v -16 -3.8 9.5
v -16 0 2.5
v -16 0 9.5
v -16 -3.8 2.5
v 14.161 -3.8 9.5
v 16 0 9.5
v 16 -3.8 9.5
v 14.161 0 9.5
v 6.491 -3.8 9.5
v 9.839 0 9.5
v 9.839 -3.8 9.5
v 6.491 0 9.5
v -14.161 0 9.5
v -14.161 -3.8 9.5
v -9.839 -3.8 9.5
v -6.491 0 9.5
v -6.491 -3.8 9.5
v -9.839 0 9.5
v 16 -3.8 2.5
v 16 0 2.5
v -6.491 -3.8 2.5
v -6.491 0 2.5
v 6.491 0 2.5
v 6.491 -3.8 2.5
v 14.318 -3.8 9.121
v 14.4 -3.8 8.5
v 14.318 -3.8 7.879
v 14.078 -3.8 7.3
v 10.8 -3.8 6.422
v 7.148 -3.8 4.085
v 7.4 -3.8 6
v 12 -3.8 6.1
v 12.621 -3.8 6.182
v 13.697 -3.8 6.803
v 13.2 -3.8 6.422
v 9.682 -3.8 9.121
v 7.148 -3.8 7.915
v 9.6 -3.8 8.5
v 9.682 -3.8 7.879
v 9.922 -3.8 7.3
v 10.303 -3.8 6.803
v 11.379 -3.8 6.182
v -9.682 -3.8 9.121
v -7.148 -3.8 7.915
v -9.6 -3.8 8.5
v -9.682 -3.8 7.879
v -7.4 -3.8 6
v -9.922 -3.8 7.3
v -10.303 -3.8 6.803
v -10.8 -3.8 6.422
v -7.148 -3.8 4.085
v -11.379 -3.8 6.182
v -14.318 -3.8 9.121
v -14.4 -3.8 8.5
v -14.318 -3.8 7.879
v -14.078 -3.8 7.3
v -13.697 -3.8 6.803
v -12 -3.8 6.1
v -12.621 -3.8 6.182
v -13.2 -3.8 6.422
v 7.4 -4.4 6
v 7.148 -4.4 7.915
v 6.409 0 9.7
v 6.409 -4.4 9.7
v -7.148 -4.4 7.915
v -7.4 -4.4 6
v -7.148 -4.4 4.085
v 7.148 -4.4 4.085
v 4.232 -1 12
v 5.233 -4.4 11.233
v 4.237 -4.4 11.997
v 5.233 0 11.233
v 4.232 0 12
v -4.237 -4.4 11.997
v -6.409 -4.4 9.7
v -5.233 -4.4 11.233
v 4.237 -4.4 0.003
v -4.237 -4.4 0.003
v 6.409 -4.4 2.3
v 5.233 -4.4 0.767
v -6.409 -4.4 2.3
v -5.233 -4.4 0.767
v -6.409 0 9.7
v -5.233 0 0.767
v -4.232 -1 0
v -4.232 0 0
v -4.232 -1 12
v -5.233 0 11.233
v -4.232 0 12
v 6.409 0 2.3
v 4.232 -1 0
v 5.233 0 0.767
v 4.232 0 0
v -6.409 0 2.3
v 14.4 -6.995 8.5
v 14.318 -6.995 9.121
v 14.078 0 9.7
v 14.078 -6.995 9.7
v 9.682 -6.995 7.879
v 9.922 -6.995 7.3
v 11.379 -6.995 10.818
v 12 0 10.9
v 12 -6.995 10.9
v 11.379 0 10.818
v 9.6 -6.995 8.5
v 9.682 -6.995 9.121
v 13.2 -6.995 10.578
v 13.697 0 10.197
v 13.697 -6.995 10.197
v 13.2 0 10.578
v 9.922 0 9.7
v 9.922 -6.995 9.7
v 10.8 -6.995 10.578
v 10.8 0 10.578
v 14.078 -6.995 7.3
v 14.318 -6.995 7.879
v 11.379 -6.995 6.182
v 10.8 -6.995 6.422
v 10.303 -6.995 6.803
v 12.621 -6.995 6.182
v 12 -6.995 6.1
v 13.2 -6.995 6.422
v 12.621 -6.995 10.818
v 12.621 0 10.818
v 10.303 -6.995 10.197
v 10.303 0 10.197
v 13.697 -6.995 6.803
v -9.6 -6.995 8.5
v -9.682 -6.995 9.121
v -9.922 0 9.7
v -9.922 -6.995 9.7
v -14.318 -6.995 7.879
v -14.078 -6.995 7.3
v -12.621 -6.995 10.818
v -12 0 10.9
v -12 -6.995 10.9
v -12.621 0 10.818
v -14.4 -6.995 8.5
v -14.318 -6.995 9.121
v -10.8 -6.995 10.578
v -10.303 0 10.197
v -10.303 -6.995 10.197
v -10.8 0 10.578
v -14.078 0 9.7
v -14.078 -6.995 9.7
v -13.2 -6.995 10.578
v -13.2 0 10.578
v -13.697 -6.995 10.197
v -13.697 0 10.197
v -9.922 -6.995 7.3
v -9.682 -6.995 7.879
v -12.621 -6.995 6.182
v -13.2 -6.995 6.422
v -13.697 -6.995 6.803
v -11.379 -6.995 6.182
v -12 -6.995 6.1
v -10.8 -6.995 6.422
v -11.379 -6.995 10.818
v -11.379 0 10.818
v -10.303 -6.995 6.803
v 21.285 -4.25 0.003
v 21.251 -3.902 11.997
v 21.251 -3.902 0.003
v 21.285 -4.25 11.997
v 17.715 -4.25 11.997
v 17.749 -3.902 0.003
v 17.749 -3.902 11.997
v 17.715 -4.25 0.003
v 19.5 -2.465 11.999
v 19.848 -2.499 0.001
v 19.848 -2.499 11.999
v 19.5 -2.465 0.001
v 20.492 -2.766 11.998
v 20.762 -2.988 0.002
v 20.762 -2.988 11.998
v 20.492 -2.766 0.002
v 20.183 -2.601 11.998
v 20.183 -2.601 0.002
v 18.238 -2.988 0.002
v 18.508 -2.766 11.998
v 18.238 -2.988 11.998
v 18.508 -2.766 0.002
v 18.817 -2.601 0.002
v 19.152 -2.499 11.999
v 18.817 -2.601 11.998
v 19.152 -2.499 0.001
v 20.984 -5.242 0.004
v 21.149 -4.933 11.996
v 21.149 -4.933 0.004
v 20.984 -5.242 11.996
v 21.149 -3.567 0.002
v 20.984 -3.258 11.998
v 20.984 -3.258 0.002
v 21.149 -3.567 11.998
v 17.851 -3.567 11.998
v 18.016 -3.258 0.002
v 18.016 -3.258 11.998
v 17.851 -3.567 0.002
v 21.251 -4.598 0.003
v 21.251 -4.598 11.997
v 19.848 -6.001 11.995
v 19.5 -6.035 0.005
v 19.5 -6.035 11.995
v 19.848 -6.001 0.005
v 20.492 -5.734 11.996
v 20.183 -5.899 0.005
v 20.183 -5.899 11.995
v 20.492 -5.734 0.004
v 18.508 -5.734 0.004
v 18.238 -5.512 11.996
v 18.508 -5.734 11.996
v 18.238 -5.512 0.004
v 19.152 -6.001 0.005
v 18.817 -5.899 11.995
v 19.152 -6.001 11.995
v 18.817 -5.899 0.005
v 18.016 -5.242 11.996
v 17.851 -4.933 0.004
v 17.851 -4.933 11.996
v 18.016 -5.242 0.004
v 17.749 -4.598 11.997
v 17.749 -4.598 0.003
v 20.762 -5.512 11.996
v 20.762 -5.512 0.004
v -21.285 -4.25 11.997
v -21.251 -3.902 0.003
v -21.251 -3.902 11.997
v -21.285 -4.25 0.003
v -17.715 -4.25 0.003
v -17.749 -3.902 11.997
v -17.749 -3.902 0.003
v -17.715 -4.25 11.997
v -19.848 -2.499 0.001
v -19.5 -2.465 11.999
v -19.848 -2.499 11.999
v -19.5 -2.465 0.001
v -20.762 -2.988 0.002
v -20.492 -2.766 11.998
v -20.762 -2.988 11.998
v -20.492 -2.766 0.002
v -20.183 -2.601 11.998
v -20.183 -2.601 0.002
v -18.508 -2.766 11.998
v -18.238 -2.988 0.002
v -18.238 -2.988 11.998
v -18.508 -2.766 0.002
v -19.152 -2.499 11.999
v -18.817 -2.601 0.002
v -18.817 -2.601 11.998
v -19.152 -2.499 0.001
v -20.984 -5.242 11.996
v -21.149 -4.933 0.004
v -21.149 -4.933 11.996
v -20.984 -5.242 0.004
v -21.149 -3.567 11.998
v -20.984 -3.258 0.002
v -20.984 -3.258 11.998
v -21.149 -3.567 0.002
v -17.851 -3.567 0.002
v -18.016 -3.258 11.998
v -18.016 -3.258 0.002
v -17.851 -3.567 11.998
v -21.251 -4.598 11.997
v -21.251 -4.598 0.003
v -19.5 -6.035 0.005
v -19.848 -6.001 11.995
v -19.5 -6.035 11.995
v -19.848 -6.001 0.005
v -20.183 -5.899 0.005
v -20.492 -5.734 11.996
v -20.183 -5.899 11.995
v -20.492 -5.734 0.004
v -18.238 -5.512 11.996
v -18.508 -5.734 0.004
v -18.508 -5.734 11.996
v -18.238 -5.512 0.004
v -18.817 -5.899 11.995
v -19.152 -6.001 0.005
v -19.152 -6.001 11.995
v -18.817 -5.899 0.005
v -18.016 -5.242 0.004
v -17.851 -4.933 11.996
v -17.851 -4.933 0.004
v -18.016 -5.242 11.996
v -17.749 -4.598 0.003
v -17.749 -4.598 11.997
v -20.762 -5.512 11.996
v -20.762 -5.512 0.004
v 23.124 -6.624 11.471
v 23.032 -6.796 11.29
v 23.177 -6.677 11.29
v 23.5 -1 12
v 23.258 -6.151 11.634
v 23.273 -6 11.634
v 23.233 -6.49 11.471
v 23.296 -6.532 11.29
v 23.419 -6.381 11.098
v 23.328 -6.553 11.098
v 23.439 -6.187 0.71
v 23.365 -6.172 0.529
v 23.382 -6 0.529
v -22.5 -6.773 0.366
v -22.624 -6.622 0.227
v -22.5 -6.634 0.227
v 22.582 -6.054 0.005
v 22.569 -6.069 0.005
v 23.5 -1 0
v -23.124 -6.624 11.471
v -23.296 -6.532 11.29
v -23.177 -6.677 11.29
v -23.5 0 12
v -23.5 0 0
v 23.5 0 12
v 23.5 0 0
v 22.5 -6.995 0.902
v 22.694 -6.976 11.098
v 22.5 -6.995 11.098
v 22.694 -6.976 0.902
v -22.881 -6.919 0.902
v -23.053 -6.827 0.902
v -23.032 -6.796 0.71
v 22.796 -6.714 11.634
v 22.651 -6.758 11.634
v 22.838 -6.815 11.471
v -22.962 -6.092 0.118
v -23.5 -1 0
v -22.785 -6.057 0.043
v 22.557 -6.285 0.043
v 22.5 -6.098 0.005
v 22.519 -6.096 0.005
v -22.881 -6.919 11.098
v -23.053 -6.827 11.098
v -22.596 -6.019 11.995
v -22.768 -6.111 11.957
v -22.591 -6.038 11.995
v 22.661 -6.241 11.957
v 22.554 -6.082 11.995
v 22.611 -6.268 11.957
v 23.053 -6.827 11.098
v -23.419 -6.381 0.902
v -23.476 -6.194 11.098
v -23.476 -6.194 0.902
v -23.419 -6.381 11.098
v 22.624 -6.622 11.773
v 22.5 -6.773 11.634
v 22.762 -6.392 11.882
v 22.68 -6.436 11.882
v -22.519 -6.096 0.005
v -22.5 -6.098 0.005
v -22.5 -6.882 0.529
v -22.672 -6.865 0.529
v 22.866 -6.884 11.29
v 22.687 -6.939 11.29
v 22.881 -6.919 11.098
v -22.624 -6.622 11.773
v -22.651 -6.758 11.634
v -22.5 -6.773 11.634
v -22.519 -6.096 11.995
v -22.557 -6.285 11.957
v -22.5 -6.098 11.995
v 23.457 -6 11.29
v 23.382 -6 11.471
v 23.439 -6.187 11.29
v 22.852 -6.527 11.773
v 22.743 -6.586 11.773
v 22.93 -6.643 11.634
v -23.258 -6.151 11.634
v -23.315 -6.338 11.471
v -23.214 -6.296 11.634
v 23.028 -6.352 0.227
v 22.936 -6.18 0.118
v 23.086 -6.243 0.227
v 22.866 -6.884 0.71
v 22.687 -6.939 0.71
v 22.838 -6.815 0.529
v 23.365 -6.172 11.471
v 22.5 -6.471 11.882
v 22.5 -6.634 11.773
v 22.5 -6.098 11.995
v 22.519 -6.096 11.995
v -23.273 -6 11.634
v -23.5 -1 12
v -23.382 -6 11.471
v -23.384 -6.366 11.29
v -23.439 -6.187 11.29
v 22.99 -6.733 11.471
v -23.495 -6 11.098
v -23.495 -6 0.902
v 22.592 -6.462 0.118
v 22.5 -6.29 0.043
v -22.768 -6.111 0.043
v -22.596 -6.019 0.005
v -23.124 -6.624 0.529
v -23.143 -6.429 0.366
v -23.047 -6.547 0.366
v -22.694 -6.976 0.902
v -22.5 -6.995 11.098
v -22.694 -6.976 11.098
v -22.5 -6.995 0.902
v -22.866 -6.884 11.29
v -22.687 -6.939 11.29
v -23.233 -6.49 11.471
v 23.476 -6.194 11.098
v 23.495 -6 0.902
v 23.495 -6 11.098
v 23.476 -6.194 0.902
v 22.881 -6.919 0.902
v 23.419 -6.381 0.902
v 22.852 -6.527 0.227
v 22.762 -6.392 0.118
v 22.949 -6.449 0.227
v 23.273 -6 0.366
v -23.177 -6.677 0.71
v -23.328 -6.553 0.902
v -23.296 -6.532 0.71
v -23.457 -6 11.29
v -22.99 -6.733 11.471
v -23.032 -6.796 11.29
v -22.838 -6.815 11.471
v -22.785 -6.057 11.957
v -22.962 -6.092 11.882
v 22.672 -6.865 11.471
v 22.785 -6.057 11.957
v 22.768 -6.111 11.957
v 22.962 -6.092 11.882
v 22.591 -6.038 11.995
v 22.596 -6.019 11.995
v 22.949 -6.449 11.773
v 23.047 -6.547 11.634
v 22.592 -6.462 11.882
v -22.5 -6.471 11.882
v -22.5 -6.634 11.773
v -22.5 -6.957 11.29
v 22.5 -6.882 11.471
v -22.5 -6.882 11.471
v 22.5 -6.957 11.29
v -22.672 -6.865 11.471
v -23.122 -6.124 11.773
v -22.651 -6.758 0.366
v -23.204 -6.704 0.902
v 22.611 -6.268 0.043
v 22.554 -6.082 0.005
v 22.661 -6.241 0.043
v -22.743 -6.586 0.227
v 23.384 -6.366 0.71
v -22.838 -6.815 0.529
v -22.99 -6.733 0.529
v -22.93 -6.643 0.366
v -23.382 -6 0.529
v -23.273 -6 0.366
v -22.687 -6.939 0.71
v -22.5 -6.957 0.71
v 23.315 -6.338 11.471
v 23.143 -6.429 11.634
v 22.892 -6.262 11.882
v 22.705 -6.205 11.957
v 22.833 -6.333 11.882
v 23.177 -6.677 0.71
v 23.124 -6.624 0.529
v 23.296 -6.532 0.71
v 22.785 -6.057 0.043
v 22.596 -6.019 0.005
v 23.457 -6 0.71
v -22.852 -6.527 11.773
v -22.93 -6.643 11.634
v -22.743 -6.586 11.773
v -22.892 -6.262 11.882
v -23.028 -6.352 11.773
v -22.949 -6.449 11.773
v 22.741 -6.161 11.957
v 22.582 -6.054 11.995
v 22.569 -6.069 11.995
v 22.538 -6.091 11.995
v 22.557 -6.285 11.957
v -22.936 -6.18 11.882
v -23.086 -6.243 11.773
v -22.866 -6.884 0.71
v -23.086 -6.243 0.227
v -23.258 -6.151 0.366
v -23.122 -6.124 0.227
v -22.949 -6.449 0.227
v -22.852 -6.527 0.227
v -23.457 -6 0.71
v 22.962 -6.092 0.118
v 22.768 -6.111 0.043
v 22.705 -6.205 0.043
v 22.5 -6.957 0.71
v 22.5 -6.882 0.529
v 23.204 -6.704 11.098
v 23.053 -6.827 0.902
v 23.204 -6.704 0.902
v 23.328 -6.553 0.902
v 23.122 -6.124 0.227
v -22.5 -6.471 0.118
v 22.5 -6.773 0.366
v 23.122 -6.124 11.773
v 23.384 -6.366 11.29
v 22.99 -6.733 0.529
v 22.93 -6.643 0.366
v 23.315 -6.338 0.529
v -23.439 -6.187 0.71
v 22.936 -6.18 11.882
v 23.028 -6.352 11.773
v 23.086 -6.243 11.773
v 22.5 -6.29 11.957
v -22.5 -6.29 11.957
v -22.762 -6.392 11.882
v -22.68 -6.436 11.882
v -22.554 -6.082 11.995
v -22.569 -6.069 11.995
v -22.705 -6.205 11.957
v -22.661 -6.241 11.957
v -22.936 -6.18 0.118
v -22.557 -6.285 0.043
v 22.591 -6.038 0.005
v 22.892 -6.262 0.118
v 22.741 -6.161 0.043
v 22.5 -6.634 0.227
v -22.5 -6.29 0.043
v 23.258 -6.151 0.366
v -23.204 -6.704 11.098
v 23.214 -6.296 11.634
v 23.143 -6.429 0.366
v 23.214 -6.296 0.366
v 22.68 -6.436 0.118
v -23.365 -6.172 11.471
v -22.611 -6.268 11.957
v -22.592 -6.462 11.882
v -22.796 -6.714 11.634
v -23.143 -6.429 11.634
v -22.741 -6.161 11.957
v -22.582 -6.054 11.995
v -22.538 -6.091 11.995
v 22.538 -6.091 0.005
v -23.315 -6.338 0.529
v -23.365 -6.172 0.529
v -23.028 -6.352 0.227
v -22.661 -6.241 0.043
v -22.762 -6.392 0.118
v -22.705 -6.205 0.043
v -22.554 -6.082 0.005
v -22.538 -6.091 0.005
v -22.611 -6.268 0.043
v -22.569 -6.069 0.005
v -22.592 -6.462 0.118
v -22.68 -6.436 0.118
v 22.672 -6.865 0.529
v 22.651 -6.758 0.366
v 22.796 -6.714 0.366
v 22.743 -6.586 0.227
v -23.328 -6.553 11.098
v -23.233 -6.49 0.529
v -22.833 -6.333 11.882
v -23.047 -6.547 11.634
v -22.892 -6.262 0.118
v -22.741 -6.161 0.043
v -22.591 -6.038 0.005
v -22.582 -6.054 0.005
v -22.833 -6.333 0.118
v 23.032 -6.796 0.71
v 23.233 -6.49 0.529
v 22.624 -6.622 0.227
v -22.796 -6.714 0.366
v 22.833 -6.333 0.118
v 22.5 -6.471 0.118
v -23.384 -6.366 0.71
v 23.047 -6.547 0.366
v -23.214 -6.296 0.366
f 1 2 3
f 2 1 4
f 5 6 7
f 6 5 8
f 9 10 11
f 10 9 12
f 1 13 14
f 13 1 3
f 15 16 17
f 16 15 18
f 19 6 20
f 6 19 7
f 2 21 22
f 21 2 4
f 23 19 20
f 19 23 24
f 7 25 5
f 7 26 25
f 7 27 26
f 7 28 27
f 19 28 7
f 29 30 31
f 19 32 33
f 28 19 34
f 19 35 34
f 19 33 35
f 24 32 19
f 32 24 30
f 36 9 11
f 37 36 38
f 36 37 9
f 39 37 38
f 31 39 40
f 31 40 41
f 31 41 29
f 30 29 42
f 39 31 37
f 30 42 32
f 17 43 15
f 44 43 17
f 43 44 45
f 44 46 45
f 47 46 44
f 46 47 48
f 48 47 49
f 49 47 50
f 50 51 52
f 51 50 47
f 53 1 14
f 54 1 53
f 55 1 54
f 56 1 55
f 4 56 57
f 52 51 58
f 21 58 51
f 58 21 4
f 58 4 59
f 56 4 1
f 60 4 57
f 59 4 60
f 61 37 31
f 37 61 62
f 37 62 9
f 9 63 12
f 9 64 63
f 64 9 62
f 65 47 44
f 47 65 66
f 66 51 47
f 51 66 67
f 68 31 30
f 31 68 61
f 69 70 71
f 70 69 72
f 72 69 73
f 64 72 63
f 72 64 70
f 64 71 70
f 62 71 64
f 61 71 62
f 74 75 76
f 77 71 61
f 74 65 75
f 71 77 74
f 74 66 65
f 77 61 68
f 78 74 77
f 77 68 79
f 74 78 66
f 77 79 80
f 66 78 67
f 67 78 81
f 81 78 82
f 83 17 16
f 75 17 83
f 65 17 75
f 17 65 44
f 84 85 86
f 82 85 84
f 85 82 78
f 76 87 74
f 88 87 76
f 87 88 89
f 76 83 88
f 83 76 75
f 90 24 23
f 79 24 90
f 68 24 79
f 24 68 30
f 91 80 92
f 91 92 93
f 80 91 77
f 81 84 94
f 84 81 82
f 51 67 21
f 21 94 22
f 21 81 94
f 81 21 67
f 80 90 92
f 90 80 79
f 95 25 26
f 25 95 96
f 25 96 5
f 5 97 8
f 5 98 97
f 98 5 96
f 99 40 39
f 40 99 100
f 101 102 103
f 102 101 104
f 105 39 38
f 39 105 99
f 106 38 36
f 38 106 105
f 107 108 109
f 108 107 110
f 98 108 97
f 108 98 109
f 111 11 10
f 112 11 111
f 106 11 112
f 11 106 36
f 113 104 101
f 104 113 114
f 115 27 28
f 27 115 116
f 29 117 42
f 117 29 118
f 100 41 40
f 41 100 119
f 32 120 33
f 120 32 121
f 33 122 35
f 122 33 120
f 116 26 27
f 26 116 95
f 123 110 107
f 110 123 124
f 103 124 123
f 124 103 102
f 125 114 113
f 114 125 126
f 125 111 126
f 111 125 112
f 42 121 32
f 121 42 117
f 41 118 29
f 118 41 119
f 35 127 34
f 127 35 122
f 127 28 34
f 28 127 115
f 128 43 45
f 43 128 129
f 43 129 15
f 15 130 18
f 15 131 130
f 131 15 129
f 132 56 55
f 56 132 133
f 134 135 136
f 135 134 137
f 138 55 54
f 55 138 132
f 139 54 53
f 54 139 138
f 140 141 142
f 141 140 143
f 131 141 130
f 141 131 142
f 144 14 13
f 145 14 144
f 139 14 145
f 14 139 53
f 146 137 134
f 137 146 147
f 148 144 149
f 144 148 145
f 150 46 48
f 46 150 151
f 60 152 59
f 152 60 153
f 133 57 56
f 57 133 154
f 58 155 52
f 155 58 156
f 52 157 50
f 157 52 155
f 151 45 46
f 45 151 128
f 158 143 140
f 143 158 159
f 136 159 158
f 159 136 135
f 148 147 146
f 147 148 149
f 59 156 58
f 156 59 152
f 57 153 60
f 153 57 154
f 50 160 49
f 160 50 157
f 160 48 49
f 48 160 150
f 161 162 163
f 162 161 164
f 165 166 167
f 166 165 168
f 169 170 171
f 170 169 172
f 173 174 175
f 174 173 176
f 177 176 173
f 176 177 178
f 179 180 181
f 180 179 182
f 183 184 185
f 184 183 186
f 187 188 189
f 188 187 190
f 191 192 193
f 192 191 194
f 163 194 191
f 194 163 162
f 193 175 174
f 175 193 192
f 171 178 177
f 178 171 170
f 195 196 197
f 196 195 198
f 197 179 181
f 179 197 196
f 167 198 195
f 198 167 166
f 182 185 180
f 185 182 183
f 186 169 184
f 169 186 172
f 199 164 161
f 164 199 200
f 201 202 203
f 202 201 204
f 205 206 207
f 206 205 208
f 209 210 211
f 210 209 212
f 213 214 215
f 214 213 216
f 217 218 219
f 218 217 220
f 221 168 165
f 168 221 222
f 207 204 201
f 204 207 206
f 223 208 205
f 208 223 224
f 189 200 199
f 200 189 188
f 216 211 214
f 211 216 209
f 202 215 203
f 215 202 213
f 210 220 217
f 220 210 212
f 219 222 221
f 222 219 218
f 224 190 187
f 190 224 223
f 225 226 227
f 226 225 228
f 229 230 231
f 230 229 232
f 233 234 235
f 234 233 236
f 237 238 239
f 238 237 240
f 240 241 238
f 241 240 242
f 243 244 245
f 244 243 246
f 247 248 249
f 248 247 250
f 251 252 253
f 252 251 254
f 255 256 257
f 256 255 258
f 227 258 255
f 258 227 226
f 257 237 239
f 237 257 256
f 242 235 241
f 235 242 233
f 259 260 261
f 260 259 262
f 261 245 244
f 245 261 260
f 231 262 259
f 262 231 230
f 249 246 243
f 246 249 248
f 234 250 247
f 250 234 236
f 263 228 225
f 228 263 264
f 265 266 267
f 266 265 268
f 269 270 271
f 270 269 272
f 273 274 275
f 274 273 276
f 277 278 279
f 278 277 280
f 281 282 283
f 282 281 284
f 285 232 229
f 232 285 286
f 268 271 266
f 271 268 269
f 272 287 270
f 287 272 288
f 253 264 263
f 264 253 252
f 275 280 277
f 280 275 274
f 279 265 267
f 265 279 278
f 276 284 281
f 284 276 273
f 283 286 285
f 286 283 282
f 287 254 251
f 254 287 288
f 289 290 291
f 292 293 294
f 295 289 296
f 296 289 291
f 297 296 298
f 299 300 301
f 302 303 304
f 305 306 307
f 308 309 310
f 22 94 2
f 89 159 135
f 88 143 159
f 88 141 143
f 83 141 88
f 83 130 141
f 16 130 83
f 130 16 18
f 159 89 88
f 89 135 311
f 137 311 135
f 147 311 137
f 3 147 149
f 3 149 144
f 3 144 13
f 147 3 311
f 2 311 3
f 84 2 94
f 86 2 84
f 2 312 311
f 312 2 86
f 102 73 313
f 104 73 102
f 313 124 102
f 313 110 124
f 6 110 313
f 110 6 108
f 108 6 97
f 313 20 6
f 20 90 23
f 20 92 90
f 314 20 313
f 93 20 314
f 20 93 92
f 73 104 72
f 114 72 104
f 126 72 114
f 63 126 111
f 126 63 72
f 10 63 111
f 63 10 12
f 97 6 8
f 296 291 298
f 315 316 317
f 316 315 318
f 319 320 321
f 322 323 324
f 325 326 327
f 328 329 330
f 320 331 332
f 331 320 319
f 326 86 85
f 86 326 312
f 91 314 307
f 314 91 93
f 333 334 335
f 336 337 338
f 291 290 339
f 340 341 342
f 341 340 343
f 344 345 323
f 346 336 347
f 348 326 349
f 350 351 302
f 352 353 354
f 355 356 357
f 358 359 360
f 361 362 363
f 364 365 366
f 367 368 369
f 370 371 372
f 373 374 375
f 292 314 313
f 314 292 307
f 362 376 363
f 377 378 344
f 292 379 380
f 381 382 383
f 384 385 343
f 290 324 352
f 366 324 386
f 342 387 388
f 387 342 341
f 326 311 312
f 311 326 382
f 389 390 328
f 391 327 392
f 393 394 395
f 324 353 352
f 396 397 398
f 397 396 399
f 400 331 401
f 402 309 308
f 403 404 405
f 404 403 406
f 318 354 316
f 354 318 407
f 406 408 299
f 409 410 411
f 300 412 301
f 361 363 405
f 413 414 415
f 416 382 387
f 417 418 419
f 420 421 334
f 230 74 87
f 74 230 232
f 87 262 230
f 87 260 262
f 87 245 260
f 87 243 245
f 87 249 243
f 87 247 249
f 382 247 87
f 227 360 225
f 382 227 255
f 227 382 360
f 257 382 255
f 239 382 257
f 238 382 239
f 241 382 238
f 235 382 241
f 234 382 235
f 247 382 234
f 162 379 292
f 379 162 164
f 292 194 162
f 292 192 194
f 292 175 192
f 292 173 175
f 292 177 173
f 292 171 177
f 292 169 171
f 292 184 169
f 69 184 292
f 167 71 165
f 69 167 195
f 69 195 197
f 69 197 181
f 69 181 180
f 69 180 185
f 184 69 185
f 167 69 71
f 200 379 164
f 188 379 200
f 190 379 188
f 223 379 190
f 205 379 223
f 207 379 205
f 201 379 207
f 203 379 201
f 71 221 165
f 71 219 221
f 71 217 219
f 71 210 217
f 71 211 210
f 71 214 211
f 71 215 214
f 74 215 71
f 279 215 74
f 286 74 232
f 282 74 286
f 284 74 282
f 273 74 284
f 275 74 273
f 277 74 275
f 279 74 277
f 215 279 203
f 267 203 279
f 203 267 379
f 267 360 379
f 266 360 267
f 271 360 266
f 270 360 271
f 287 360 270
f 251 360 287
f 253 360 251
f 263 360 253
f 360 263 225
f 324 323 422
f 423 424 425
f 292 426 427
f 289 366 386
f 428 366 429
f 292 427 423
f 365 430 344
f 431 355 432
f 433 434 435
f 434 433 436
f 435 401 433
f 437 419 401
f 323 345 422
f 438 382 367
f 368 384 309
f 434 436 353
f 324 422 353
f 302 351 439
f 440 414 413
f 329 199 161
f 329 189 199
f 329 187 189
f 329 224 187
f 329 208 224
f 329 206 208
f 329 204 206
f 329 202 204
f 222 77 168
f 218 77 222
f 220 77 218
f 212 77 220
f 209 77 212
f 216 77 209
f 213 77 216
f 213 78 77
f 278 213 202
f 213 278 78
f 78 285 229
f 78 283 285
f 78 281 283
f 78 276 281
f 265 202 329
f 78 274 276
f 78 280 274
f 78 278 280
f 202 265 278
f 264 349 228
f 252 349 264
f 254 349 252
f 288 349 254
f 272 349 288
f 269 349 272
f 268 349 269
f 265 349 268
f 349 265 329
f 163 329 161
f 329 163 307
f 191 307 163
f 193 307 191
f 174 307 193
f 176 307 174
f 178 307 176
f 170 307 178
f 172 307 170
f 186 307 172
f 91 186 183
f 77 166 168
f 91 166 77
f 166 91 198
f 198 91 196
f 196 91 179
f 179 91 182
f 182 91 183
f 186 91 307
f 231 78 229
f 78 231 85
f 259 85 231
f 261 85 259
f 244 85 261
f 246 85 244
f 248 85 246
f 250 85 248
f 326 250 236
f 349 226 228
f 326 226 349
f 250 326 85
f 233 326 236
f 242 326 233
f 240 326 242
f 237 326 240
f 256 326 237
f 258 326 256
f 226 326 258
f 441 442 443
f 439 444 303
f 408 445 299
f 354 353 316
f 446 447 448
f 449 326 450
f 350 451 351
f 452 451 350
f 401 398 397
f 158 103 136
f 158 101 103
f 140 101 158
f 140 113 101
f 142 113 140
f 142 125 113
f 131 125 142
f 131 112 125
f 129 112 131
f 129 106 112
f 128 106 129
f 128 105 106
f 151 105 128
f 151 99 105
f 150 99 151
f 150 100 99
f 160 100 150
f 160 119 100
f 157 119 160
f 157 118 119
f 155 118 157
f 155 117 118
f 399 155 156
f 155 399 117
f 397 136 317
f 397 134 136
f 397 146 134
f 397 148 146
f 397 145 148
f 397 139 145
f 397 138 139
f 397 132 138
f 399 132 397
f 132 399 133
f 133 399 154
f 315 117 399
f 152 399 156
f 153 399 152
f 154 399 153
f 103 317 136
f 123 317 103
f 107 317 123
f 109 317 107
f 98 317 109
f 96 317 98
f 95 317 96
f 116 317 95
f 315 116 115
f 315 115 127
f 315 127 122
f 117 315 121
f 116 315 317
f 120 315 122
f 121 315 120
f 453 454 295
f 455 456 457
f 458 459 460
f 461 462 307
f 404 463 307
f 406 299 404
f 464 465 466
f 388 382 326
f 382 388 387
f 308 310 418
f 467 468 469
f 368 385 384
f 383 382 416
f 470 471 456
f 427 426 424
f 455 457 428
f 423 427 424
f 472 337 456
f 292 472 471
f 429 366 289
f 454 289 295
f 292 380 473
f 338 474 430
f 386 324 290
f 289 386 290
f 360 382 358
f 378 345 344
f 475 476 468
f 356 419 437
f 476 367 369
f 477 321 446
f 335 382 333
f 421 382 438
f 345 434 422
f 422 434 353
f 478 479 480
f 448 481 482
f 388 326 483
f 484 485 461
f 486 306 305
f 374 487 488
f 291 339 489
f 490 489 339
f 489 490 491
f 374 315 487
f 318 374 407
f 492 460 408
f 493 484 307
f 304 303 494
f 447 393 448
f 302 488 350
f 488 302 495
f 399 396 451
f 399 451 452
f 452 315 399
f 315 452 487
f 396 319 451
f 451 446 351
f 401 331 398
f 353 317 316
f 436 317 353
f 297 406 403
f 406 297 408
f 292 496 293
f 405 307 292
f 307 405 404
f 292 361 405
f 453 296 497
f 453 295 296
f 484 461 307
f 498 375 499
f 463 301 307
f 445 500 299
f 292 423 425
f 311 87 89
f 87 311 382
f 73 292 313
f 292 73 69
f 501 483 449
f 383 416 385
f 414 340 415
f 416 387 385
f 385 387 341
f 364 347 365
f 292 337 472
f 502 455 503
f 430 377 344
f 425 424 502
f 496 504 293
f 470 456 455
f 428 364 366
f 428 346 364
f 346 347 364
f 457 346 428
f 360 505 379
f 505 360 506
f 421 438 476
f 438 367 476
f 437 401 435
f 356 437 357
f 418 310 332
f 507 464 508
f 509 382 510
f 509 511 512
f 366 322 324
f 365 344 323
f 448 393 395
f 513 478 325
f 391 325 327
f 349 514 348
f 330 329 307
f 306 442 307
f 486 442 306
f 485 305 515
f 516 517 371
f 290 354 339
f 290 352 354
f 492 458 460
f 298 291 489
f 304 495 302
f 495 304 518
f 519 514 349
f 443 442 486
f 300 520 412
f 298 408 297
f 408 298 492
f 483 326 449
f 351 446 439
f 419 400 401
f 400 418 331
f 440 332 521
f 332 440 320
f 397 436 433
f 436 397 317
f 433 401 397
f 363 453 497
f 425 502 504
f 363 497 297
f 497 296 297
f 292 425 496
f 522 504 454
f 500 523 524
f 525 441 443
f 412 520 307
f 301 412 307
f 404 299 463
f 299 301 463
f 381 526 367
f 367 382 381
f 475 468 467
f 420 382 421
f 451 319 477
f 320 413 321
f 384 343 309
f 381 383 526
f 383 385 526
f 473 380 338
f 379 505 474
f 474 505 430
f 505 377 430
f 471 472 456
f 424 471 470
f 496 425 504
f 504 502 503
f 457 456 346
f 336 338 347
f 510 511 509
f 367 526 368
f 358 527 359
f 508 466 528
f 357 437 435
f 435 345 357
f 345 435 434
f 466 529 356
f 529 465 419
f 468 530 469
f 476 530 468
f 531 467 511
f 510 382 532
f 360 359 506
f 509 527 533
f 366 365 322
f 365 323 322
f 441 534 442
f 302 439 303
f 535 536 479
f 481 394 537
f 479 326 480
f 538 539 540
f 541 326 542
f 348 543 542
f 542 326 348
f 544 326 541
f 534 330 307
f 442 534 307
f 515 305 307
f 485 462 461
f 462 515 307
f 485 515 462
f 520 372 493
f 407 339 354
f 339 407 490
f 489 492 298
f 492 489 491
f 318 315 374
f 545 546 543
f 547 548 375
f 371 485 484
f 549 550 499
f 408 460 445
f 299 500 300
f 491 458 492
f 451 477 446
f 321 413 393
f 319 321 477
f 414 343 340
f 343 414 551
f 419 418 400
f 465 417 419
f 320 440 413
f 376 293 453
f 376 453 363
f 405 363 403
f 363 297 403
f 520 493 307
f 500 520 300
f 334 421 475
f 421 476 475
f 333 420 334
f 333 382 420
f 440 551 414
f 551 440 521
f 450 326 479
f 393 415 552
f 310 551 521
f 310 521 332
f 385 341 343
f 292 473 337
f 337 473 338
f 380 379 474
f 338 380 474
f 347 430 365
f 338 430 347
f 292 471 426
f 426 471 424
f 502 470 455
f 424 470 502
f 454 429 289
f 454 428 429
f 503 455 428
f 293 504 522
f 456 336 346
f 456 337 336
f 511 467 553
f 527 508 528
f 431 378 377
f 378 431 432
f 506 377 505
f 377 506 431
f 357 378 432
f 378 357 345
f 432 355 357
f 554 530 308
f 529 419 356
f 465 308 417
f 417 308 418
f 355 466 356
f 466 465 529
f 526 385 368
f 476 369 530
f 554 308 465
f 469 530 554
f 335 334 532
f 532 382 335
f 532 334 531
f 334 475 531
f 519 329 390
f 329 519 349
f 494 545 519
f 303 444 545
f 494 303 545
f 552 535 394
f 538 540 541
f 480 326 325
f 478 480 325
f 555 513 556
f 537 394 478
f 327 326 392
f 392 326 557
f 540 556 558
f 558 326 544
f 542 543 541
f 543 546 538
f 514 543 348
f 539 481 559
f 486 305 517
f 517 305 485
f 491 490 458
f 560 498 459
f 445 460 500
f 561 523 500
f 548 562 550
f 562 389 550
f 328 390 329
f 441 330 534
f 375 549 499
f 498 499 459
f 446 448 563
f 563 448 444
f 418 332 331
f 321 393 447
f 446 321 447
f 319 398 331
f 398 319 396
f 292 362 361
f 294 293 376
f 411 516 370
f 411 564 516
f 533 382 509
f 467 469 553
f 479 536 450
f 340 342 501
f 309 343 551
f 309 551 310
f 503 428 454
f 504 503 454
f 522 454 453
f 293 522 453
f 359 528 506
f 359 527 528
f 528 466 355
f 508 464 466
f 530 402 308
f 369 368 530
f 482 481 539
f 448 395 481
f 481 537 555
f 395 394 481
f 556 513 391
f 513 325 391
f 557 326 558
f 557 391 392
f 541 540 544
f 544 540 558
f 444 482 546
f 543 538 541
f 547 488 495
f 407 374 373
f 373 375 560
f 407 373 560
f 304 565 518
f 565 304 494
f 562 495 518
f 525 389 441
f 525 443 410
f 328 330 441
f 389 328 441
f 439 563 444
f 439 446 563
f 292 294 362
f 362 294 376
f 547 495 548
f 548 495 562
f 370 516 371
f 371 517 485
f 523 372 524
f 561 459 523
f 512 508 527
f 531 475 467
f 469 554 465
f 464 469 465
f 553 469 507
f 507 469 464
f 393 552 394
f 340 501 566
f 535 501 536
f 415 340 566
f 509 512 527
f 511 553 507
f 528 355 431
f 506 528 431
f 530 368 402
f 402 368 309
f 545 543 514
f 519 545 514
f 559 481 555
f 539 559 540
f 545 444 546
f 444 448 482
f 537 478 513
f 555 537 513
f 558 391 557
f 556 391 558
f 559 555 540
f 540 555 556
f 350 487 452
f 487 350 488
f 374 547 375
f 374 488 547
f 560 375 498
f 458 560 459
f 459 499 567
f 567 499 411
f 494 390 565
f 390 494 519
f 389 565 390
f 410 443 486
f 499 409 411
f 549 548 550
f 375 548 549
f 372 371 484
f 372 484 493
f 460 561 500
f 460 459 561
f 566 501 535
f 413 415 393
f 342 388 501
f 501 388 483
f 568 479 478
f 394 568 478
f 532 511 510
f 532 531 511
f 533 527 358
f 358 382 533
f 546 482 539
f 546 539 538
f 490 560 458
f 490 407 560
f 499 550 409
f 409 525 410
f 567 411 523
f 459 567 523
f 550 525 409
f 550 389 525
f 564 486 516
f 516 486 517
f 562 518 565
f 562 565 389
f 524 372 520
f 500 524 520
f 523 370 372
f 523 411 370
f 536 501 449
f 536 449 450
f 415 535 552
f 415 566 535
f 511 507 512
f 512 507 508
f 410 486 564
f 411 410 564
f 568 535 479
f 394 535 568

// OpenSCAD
union() // SharpSCAD generated scene: buttonsandwich
{
  { // module: buttonsandwich
    difference()
    {
      translate( v= [ 0, -3.5, 6 ] )
      {
        { // module: roundedcube
          translate( v= [ -23.5, -3.5, -6 ] )
          {
            translate( v= [ 0, 0, 0 ] )
            {
              hull()
              {
                translate( v= [ 1, 1, 1 ] )
                {
                  sphere( r= 1, $fn= 32 );
                }
                translate( v= [ 1, 6, 1 ] )
                {
                  sphere( r= 1, $fn= 32 );
                }
                translate( v= [ 1, 1, 11 ] )
                {
                  sphere( r= 1, $fn= 32 );
                }
                translate( v= [ 1, 6, 11 ] )
                {
                  sphere( r= 1, $fn= 32 );
                }
                translate( v= [ 46, 1, 1 ] )
                {
                  sphere( r= 1, $fn= 32 );
                }
                translate( v= [ 46, 6, 1 ] )
                {
                  sphere( r= 1, $fn= 32 );
                }
                translate( v= [ 46, 1, 11 ] )
                {
                  sphere( r= 1, $fn= 32 );
                }
                translate( v= [ 46, 6, 11 ] )
                {
                  sphere( r= 1, $fn= 32 );
                }
                union()
                {
                  translate( v= [ 0, 6, 0 ] )
                  {
                    cube( size= [ 47, 1, 12 ] );
                  }
                }
              }
            }
          }
        }
      }
      union()
      {
        translate( v= [ 0, 0.1, 6 ] )
        {
          { // module: button
            union()
            {
              translate( v= [ 0, -1.9, 0 ] )
              {
                cube( size= [ 32, 4, 7 ], center= true );
              }
              rotate( a= [ 90, 0, 0 ] )
              {
                cylinder( r= 7.4, $fn= 24, h= 4.5 );
              }
              rotate( a= [ -90, 0, 0 ] )
              {
                cylinder( r= 4.3, $fn= 24, h= 4 );
              }
            }
          }
        }
        translate( v= [ 12, -3.5, 8.5 ] )
        {
          rotate( a= [ 90, 0, 0 ] )
          {
            cylinder( r= 2.4, center= true, $fn= 24, h= 9 );
          }
        }
        translate( v= [ -12, -3.5, 8.5 ] )
        {
          rotate( a= [ 90, 0, 0 ] )
          {
            cylinder( r= 2.4, center= true, $fn= 24, h= 9 );
          }
        }
      }
      translate( v= [ 0, -23.75, 0 ] )
      {
        union()
        {
          translate( v= [ 19.5, 19.5, -0.1 ] )
          {
            scale( v= [ 1.05, 1.05, 1 ] )
            {
              union()
              {
                translate( v= [ 0, 0, 34.3 ] )
                {
                  cylinder( r= 2.7, $fn= 32, h= 4 );
                }
                cylinder( r= 1.7, $fn= 32, h= 38.1 );
              }
            }
          }
          mirror( v= [ 1, 0, 0 ] )
          {
            translate( v= [ 19.5, 19.5, -0.1 ] )
            {
              scale( v= [ 1.05, 1.05, 1 ] )
              {
                union()
                {
                  translate( v= [ 0, 0, 34.3 ] )
                  {
                    cylinder( r= 2.7, $fn= 32, h= 4 );
                  }
                  cylinder( r= 1.7, $fn= 32, h= 38.1 );
                }
              }
            }
          }
        }
      }
    }
  }
}
